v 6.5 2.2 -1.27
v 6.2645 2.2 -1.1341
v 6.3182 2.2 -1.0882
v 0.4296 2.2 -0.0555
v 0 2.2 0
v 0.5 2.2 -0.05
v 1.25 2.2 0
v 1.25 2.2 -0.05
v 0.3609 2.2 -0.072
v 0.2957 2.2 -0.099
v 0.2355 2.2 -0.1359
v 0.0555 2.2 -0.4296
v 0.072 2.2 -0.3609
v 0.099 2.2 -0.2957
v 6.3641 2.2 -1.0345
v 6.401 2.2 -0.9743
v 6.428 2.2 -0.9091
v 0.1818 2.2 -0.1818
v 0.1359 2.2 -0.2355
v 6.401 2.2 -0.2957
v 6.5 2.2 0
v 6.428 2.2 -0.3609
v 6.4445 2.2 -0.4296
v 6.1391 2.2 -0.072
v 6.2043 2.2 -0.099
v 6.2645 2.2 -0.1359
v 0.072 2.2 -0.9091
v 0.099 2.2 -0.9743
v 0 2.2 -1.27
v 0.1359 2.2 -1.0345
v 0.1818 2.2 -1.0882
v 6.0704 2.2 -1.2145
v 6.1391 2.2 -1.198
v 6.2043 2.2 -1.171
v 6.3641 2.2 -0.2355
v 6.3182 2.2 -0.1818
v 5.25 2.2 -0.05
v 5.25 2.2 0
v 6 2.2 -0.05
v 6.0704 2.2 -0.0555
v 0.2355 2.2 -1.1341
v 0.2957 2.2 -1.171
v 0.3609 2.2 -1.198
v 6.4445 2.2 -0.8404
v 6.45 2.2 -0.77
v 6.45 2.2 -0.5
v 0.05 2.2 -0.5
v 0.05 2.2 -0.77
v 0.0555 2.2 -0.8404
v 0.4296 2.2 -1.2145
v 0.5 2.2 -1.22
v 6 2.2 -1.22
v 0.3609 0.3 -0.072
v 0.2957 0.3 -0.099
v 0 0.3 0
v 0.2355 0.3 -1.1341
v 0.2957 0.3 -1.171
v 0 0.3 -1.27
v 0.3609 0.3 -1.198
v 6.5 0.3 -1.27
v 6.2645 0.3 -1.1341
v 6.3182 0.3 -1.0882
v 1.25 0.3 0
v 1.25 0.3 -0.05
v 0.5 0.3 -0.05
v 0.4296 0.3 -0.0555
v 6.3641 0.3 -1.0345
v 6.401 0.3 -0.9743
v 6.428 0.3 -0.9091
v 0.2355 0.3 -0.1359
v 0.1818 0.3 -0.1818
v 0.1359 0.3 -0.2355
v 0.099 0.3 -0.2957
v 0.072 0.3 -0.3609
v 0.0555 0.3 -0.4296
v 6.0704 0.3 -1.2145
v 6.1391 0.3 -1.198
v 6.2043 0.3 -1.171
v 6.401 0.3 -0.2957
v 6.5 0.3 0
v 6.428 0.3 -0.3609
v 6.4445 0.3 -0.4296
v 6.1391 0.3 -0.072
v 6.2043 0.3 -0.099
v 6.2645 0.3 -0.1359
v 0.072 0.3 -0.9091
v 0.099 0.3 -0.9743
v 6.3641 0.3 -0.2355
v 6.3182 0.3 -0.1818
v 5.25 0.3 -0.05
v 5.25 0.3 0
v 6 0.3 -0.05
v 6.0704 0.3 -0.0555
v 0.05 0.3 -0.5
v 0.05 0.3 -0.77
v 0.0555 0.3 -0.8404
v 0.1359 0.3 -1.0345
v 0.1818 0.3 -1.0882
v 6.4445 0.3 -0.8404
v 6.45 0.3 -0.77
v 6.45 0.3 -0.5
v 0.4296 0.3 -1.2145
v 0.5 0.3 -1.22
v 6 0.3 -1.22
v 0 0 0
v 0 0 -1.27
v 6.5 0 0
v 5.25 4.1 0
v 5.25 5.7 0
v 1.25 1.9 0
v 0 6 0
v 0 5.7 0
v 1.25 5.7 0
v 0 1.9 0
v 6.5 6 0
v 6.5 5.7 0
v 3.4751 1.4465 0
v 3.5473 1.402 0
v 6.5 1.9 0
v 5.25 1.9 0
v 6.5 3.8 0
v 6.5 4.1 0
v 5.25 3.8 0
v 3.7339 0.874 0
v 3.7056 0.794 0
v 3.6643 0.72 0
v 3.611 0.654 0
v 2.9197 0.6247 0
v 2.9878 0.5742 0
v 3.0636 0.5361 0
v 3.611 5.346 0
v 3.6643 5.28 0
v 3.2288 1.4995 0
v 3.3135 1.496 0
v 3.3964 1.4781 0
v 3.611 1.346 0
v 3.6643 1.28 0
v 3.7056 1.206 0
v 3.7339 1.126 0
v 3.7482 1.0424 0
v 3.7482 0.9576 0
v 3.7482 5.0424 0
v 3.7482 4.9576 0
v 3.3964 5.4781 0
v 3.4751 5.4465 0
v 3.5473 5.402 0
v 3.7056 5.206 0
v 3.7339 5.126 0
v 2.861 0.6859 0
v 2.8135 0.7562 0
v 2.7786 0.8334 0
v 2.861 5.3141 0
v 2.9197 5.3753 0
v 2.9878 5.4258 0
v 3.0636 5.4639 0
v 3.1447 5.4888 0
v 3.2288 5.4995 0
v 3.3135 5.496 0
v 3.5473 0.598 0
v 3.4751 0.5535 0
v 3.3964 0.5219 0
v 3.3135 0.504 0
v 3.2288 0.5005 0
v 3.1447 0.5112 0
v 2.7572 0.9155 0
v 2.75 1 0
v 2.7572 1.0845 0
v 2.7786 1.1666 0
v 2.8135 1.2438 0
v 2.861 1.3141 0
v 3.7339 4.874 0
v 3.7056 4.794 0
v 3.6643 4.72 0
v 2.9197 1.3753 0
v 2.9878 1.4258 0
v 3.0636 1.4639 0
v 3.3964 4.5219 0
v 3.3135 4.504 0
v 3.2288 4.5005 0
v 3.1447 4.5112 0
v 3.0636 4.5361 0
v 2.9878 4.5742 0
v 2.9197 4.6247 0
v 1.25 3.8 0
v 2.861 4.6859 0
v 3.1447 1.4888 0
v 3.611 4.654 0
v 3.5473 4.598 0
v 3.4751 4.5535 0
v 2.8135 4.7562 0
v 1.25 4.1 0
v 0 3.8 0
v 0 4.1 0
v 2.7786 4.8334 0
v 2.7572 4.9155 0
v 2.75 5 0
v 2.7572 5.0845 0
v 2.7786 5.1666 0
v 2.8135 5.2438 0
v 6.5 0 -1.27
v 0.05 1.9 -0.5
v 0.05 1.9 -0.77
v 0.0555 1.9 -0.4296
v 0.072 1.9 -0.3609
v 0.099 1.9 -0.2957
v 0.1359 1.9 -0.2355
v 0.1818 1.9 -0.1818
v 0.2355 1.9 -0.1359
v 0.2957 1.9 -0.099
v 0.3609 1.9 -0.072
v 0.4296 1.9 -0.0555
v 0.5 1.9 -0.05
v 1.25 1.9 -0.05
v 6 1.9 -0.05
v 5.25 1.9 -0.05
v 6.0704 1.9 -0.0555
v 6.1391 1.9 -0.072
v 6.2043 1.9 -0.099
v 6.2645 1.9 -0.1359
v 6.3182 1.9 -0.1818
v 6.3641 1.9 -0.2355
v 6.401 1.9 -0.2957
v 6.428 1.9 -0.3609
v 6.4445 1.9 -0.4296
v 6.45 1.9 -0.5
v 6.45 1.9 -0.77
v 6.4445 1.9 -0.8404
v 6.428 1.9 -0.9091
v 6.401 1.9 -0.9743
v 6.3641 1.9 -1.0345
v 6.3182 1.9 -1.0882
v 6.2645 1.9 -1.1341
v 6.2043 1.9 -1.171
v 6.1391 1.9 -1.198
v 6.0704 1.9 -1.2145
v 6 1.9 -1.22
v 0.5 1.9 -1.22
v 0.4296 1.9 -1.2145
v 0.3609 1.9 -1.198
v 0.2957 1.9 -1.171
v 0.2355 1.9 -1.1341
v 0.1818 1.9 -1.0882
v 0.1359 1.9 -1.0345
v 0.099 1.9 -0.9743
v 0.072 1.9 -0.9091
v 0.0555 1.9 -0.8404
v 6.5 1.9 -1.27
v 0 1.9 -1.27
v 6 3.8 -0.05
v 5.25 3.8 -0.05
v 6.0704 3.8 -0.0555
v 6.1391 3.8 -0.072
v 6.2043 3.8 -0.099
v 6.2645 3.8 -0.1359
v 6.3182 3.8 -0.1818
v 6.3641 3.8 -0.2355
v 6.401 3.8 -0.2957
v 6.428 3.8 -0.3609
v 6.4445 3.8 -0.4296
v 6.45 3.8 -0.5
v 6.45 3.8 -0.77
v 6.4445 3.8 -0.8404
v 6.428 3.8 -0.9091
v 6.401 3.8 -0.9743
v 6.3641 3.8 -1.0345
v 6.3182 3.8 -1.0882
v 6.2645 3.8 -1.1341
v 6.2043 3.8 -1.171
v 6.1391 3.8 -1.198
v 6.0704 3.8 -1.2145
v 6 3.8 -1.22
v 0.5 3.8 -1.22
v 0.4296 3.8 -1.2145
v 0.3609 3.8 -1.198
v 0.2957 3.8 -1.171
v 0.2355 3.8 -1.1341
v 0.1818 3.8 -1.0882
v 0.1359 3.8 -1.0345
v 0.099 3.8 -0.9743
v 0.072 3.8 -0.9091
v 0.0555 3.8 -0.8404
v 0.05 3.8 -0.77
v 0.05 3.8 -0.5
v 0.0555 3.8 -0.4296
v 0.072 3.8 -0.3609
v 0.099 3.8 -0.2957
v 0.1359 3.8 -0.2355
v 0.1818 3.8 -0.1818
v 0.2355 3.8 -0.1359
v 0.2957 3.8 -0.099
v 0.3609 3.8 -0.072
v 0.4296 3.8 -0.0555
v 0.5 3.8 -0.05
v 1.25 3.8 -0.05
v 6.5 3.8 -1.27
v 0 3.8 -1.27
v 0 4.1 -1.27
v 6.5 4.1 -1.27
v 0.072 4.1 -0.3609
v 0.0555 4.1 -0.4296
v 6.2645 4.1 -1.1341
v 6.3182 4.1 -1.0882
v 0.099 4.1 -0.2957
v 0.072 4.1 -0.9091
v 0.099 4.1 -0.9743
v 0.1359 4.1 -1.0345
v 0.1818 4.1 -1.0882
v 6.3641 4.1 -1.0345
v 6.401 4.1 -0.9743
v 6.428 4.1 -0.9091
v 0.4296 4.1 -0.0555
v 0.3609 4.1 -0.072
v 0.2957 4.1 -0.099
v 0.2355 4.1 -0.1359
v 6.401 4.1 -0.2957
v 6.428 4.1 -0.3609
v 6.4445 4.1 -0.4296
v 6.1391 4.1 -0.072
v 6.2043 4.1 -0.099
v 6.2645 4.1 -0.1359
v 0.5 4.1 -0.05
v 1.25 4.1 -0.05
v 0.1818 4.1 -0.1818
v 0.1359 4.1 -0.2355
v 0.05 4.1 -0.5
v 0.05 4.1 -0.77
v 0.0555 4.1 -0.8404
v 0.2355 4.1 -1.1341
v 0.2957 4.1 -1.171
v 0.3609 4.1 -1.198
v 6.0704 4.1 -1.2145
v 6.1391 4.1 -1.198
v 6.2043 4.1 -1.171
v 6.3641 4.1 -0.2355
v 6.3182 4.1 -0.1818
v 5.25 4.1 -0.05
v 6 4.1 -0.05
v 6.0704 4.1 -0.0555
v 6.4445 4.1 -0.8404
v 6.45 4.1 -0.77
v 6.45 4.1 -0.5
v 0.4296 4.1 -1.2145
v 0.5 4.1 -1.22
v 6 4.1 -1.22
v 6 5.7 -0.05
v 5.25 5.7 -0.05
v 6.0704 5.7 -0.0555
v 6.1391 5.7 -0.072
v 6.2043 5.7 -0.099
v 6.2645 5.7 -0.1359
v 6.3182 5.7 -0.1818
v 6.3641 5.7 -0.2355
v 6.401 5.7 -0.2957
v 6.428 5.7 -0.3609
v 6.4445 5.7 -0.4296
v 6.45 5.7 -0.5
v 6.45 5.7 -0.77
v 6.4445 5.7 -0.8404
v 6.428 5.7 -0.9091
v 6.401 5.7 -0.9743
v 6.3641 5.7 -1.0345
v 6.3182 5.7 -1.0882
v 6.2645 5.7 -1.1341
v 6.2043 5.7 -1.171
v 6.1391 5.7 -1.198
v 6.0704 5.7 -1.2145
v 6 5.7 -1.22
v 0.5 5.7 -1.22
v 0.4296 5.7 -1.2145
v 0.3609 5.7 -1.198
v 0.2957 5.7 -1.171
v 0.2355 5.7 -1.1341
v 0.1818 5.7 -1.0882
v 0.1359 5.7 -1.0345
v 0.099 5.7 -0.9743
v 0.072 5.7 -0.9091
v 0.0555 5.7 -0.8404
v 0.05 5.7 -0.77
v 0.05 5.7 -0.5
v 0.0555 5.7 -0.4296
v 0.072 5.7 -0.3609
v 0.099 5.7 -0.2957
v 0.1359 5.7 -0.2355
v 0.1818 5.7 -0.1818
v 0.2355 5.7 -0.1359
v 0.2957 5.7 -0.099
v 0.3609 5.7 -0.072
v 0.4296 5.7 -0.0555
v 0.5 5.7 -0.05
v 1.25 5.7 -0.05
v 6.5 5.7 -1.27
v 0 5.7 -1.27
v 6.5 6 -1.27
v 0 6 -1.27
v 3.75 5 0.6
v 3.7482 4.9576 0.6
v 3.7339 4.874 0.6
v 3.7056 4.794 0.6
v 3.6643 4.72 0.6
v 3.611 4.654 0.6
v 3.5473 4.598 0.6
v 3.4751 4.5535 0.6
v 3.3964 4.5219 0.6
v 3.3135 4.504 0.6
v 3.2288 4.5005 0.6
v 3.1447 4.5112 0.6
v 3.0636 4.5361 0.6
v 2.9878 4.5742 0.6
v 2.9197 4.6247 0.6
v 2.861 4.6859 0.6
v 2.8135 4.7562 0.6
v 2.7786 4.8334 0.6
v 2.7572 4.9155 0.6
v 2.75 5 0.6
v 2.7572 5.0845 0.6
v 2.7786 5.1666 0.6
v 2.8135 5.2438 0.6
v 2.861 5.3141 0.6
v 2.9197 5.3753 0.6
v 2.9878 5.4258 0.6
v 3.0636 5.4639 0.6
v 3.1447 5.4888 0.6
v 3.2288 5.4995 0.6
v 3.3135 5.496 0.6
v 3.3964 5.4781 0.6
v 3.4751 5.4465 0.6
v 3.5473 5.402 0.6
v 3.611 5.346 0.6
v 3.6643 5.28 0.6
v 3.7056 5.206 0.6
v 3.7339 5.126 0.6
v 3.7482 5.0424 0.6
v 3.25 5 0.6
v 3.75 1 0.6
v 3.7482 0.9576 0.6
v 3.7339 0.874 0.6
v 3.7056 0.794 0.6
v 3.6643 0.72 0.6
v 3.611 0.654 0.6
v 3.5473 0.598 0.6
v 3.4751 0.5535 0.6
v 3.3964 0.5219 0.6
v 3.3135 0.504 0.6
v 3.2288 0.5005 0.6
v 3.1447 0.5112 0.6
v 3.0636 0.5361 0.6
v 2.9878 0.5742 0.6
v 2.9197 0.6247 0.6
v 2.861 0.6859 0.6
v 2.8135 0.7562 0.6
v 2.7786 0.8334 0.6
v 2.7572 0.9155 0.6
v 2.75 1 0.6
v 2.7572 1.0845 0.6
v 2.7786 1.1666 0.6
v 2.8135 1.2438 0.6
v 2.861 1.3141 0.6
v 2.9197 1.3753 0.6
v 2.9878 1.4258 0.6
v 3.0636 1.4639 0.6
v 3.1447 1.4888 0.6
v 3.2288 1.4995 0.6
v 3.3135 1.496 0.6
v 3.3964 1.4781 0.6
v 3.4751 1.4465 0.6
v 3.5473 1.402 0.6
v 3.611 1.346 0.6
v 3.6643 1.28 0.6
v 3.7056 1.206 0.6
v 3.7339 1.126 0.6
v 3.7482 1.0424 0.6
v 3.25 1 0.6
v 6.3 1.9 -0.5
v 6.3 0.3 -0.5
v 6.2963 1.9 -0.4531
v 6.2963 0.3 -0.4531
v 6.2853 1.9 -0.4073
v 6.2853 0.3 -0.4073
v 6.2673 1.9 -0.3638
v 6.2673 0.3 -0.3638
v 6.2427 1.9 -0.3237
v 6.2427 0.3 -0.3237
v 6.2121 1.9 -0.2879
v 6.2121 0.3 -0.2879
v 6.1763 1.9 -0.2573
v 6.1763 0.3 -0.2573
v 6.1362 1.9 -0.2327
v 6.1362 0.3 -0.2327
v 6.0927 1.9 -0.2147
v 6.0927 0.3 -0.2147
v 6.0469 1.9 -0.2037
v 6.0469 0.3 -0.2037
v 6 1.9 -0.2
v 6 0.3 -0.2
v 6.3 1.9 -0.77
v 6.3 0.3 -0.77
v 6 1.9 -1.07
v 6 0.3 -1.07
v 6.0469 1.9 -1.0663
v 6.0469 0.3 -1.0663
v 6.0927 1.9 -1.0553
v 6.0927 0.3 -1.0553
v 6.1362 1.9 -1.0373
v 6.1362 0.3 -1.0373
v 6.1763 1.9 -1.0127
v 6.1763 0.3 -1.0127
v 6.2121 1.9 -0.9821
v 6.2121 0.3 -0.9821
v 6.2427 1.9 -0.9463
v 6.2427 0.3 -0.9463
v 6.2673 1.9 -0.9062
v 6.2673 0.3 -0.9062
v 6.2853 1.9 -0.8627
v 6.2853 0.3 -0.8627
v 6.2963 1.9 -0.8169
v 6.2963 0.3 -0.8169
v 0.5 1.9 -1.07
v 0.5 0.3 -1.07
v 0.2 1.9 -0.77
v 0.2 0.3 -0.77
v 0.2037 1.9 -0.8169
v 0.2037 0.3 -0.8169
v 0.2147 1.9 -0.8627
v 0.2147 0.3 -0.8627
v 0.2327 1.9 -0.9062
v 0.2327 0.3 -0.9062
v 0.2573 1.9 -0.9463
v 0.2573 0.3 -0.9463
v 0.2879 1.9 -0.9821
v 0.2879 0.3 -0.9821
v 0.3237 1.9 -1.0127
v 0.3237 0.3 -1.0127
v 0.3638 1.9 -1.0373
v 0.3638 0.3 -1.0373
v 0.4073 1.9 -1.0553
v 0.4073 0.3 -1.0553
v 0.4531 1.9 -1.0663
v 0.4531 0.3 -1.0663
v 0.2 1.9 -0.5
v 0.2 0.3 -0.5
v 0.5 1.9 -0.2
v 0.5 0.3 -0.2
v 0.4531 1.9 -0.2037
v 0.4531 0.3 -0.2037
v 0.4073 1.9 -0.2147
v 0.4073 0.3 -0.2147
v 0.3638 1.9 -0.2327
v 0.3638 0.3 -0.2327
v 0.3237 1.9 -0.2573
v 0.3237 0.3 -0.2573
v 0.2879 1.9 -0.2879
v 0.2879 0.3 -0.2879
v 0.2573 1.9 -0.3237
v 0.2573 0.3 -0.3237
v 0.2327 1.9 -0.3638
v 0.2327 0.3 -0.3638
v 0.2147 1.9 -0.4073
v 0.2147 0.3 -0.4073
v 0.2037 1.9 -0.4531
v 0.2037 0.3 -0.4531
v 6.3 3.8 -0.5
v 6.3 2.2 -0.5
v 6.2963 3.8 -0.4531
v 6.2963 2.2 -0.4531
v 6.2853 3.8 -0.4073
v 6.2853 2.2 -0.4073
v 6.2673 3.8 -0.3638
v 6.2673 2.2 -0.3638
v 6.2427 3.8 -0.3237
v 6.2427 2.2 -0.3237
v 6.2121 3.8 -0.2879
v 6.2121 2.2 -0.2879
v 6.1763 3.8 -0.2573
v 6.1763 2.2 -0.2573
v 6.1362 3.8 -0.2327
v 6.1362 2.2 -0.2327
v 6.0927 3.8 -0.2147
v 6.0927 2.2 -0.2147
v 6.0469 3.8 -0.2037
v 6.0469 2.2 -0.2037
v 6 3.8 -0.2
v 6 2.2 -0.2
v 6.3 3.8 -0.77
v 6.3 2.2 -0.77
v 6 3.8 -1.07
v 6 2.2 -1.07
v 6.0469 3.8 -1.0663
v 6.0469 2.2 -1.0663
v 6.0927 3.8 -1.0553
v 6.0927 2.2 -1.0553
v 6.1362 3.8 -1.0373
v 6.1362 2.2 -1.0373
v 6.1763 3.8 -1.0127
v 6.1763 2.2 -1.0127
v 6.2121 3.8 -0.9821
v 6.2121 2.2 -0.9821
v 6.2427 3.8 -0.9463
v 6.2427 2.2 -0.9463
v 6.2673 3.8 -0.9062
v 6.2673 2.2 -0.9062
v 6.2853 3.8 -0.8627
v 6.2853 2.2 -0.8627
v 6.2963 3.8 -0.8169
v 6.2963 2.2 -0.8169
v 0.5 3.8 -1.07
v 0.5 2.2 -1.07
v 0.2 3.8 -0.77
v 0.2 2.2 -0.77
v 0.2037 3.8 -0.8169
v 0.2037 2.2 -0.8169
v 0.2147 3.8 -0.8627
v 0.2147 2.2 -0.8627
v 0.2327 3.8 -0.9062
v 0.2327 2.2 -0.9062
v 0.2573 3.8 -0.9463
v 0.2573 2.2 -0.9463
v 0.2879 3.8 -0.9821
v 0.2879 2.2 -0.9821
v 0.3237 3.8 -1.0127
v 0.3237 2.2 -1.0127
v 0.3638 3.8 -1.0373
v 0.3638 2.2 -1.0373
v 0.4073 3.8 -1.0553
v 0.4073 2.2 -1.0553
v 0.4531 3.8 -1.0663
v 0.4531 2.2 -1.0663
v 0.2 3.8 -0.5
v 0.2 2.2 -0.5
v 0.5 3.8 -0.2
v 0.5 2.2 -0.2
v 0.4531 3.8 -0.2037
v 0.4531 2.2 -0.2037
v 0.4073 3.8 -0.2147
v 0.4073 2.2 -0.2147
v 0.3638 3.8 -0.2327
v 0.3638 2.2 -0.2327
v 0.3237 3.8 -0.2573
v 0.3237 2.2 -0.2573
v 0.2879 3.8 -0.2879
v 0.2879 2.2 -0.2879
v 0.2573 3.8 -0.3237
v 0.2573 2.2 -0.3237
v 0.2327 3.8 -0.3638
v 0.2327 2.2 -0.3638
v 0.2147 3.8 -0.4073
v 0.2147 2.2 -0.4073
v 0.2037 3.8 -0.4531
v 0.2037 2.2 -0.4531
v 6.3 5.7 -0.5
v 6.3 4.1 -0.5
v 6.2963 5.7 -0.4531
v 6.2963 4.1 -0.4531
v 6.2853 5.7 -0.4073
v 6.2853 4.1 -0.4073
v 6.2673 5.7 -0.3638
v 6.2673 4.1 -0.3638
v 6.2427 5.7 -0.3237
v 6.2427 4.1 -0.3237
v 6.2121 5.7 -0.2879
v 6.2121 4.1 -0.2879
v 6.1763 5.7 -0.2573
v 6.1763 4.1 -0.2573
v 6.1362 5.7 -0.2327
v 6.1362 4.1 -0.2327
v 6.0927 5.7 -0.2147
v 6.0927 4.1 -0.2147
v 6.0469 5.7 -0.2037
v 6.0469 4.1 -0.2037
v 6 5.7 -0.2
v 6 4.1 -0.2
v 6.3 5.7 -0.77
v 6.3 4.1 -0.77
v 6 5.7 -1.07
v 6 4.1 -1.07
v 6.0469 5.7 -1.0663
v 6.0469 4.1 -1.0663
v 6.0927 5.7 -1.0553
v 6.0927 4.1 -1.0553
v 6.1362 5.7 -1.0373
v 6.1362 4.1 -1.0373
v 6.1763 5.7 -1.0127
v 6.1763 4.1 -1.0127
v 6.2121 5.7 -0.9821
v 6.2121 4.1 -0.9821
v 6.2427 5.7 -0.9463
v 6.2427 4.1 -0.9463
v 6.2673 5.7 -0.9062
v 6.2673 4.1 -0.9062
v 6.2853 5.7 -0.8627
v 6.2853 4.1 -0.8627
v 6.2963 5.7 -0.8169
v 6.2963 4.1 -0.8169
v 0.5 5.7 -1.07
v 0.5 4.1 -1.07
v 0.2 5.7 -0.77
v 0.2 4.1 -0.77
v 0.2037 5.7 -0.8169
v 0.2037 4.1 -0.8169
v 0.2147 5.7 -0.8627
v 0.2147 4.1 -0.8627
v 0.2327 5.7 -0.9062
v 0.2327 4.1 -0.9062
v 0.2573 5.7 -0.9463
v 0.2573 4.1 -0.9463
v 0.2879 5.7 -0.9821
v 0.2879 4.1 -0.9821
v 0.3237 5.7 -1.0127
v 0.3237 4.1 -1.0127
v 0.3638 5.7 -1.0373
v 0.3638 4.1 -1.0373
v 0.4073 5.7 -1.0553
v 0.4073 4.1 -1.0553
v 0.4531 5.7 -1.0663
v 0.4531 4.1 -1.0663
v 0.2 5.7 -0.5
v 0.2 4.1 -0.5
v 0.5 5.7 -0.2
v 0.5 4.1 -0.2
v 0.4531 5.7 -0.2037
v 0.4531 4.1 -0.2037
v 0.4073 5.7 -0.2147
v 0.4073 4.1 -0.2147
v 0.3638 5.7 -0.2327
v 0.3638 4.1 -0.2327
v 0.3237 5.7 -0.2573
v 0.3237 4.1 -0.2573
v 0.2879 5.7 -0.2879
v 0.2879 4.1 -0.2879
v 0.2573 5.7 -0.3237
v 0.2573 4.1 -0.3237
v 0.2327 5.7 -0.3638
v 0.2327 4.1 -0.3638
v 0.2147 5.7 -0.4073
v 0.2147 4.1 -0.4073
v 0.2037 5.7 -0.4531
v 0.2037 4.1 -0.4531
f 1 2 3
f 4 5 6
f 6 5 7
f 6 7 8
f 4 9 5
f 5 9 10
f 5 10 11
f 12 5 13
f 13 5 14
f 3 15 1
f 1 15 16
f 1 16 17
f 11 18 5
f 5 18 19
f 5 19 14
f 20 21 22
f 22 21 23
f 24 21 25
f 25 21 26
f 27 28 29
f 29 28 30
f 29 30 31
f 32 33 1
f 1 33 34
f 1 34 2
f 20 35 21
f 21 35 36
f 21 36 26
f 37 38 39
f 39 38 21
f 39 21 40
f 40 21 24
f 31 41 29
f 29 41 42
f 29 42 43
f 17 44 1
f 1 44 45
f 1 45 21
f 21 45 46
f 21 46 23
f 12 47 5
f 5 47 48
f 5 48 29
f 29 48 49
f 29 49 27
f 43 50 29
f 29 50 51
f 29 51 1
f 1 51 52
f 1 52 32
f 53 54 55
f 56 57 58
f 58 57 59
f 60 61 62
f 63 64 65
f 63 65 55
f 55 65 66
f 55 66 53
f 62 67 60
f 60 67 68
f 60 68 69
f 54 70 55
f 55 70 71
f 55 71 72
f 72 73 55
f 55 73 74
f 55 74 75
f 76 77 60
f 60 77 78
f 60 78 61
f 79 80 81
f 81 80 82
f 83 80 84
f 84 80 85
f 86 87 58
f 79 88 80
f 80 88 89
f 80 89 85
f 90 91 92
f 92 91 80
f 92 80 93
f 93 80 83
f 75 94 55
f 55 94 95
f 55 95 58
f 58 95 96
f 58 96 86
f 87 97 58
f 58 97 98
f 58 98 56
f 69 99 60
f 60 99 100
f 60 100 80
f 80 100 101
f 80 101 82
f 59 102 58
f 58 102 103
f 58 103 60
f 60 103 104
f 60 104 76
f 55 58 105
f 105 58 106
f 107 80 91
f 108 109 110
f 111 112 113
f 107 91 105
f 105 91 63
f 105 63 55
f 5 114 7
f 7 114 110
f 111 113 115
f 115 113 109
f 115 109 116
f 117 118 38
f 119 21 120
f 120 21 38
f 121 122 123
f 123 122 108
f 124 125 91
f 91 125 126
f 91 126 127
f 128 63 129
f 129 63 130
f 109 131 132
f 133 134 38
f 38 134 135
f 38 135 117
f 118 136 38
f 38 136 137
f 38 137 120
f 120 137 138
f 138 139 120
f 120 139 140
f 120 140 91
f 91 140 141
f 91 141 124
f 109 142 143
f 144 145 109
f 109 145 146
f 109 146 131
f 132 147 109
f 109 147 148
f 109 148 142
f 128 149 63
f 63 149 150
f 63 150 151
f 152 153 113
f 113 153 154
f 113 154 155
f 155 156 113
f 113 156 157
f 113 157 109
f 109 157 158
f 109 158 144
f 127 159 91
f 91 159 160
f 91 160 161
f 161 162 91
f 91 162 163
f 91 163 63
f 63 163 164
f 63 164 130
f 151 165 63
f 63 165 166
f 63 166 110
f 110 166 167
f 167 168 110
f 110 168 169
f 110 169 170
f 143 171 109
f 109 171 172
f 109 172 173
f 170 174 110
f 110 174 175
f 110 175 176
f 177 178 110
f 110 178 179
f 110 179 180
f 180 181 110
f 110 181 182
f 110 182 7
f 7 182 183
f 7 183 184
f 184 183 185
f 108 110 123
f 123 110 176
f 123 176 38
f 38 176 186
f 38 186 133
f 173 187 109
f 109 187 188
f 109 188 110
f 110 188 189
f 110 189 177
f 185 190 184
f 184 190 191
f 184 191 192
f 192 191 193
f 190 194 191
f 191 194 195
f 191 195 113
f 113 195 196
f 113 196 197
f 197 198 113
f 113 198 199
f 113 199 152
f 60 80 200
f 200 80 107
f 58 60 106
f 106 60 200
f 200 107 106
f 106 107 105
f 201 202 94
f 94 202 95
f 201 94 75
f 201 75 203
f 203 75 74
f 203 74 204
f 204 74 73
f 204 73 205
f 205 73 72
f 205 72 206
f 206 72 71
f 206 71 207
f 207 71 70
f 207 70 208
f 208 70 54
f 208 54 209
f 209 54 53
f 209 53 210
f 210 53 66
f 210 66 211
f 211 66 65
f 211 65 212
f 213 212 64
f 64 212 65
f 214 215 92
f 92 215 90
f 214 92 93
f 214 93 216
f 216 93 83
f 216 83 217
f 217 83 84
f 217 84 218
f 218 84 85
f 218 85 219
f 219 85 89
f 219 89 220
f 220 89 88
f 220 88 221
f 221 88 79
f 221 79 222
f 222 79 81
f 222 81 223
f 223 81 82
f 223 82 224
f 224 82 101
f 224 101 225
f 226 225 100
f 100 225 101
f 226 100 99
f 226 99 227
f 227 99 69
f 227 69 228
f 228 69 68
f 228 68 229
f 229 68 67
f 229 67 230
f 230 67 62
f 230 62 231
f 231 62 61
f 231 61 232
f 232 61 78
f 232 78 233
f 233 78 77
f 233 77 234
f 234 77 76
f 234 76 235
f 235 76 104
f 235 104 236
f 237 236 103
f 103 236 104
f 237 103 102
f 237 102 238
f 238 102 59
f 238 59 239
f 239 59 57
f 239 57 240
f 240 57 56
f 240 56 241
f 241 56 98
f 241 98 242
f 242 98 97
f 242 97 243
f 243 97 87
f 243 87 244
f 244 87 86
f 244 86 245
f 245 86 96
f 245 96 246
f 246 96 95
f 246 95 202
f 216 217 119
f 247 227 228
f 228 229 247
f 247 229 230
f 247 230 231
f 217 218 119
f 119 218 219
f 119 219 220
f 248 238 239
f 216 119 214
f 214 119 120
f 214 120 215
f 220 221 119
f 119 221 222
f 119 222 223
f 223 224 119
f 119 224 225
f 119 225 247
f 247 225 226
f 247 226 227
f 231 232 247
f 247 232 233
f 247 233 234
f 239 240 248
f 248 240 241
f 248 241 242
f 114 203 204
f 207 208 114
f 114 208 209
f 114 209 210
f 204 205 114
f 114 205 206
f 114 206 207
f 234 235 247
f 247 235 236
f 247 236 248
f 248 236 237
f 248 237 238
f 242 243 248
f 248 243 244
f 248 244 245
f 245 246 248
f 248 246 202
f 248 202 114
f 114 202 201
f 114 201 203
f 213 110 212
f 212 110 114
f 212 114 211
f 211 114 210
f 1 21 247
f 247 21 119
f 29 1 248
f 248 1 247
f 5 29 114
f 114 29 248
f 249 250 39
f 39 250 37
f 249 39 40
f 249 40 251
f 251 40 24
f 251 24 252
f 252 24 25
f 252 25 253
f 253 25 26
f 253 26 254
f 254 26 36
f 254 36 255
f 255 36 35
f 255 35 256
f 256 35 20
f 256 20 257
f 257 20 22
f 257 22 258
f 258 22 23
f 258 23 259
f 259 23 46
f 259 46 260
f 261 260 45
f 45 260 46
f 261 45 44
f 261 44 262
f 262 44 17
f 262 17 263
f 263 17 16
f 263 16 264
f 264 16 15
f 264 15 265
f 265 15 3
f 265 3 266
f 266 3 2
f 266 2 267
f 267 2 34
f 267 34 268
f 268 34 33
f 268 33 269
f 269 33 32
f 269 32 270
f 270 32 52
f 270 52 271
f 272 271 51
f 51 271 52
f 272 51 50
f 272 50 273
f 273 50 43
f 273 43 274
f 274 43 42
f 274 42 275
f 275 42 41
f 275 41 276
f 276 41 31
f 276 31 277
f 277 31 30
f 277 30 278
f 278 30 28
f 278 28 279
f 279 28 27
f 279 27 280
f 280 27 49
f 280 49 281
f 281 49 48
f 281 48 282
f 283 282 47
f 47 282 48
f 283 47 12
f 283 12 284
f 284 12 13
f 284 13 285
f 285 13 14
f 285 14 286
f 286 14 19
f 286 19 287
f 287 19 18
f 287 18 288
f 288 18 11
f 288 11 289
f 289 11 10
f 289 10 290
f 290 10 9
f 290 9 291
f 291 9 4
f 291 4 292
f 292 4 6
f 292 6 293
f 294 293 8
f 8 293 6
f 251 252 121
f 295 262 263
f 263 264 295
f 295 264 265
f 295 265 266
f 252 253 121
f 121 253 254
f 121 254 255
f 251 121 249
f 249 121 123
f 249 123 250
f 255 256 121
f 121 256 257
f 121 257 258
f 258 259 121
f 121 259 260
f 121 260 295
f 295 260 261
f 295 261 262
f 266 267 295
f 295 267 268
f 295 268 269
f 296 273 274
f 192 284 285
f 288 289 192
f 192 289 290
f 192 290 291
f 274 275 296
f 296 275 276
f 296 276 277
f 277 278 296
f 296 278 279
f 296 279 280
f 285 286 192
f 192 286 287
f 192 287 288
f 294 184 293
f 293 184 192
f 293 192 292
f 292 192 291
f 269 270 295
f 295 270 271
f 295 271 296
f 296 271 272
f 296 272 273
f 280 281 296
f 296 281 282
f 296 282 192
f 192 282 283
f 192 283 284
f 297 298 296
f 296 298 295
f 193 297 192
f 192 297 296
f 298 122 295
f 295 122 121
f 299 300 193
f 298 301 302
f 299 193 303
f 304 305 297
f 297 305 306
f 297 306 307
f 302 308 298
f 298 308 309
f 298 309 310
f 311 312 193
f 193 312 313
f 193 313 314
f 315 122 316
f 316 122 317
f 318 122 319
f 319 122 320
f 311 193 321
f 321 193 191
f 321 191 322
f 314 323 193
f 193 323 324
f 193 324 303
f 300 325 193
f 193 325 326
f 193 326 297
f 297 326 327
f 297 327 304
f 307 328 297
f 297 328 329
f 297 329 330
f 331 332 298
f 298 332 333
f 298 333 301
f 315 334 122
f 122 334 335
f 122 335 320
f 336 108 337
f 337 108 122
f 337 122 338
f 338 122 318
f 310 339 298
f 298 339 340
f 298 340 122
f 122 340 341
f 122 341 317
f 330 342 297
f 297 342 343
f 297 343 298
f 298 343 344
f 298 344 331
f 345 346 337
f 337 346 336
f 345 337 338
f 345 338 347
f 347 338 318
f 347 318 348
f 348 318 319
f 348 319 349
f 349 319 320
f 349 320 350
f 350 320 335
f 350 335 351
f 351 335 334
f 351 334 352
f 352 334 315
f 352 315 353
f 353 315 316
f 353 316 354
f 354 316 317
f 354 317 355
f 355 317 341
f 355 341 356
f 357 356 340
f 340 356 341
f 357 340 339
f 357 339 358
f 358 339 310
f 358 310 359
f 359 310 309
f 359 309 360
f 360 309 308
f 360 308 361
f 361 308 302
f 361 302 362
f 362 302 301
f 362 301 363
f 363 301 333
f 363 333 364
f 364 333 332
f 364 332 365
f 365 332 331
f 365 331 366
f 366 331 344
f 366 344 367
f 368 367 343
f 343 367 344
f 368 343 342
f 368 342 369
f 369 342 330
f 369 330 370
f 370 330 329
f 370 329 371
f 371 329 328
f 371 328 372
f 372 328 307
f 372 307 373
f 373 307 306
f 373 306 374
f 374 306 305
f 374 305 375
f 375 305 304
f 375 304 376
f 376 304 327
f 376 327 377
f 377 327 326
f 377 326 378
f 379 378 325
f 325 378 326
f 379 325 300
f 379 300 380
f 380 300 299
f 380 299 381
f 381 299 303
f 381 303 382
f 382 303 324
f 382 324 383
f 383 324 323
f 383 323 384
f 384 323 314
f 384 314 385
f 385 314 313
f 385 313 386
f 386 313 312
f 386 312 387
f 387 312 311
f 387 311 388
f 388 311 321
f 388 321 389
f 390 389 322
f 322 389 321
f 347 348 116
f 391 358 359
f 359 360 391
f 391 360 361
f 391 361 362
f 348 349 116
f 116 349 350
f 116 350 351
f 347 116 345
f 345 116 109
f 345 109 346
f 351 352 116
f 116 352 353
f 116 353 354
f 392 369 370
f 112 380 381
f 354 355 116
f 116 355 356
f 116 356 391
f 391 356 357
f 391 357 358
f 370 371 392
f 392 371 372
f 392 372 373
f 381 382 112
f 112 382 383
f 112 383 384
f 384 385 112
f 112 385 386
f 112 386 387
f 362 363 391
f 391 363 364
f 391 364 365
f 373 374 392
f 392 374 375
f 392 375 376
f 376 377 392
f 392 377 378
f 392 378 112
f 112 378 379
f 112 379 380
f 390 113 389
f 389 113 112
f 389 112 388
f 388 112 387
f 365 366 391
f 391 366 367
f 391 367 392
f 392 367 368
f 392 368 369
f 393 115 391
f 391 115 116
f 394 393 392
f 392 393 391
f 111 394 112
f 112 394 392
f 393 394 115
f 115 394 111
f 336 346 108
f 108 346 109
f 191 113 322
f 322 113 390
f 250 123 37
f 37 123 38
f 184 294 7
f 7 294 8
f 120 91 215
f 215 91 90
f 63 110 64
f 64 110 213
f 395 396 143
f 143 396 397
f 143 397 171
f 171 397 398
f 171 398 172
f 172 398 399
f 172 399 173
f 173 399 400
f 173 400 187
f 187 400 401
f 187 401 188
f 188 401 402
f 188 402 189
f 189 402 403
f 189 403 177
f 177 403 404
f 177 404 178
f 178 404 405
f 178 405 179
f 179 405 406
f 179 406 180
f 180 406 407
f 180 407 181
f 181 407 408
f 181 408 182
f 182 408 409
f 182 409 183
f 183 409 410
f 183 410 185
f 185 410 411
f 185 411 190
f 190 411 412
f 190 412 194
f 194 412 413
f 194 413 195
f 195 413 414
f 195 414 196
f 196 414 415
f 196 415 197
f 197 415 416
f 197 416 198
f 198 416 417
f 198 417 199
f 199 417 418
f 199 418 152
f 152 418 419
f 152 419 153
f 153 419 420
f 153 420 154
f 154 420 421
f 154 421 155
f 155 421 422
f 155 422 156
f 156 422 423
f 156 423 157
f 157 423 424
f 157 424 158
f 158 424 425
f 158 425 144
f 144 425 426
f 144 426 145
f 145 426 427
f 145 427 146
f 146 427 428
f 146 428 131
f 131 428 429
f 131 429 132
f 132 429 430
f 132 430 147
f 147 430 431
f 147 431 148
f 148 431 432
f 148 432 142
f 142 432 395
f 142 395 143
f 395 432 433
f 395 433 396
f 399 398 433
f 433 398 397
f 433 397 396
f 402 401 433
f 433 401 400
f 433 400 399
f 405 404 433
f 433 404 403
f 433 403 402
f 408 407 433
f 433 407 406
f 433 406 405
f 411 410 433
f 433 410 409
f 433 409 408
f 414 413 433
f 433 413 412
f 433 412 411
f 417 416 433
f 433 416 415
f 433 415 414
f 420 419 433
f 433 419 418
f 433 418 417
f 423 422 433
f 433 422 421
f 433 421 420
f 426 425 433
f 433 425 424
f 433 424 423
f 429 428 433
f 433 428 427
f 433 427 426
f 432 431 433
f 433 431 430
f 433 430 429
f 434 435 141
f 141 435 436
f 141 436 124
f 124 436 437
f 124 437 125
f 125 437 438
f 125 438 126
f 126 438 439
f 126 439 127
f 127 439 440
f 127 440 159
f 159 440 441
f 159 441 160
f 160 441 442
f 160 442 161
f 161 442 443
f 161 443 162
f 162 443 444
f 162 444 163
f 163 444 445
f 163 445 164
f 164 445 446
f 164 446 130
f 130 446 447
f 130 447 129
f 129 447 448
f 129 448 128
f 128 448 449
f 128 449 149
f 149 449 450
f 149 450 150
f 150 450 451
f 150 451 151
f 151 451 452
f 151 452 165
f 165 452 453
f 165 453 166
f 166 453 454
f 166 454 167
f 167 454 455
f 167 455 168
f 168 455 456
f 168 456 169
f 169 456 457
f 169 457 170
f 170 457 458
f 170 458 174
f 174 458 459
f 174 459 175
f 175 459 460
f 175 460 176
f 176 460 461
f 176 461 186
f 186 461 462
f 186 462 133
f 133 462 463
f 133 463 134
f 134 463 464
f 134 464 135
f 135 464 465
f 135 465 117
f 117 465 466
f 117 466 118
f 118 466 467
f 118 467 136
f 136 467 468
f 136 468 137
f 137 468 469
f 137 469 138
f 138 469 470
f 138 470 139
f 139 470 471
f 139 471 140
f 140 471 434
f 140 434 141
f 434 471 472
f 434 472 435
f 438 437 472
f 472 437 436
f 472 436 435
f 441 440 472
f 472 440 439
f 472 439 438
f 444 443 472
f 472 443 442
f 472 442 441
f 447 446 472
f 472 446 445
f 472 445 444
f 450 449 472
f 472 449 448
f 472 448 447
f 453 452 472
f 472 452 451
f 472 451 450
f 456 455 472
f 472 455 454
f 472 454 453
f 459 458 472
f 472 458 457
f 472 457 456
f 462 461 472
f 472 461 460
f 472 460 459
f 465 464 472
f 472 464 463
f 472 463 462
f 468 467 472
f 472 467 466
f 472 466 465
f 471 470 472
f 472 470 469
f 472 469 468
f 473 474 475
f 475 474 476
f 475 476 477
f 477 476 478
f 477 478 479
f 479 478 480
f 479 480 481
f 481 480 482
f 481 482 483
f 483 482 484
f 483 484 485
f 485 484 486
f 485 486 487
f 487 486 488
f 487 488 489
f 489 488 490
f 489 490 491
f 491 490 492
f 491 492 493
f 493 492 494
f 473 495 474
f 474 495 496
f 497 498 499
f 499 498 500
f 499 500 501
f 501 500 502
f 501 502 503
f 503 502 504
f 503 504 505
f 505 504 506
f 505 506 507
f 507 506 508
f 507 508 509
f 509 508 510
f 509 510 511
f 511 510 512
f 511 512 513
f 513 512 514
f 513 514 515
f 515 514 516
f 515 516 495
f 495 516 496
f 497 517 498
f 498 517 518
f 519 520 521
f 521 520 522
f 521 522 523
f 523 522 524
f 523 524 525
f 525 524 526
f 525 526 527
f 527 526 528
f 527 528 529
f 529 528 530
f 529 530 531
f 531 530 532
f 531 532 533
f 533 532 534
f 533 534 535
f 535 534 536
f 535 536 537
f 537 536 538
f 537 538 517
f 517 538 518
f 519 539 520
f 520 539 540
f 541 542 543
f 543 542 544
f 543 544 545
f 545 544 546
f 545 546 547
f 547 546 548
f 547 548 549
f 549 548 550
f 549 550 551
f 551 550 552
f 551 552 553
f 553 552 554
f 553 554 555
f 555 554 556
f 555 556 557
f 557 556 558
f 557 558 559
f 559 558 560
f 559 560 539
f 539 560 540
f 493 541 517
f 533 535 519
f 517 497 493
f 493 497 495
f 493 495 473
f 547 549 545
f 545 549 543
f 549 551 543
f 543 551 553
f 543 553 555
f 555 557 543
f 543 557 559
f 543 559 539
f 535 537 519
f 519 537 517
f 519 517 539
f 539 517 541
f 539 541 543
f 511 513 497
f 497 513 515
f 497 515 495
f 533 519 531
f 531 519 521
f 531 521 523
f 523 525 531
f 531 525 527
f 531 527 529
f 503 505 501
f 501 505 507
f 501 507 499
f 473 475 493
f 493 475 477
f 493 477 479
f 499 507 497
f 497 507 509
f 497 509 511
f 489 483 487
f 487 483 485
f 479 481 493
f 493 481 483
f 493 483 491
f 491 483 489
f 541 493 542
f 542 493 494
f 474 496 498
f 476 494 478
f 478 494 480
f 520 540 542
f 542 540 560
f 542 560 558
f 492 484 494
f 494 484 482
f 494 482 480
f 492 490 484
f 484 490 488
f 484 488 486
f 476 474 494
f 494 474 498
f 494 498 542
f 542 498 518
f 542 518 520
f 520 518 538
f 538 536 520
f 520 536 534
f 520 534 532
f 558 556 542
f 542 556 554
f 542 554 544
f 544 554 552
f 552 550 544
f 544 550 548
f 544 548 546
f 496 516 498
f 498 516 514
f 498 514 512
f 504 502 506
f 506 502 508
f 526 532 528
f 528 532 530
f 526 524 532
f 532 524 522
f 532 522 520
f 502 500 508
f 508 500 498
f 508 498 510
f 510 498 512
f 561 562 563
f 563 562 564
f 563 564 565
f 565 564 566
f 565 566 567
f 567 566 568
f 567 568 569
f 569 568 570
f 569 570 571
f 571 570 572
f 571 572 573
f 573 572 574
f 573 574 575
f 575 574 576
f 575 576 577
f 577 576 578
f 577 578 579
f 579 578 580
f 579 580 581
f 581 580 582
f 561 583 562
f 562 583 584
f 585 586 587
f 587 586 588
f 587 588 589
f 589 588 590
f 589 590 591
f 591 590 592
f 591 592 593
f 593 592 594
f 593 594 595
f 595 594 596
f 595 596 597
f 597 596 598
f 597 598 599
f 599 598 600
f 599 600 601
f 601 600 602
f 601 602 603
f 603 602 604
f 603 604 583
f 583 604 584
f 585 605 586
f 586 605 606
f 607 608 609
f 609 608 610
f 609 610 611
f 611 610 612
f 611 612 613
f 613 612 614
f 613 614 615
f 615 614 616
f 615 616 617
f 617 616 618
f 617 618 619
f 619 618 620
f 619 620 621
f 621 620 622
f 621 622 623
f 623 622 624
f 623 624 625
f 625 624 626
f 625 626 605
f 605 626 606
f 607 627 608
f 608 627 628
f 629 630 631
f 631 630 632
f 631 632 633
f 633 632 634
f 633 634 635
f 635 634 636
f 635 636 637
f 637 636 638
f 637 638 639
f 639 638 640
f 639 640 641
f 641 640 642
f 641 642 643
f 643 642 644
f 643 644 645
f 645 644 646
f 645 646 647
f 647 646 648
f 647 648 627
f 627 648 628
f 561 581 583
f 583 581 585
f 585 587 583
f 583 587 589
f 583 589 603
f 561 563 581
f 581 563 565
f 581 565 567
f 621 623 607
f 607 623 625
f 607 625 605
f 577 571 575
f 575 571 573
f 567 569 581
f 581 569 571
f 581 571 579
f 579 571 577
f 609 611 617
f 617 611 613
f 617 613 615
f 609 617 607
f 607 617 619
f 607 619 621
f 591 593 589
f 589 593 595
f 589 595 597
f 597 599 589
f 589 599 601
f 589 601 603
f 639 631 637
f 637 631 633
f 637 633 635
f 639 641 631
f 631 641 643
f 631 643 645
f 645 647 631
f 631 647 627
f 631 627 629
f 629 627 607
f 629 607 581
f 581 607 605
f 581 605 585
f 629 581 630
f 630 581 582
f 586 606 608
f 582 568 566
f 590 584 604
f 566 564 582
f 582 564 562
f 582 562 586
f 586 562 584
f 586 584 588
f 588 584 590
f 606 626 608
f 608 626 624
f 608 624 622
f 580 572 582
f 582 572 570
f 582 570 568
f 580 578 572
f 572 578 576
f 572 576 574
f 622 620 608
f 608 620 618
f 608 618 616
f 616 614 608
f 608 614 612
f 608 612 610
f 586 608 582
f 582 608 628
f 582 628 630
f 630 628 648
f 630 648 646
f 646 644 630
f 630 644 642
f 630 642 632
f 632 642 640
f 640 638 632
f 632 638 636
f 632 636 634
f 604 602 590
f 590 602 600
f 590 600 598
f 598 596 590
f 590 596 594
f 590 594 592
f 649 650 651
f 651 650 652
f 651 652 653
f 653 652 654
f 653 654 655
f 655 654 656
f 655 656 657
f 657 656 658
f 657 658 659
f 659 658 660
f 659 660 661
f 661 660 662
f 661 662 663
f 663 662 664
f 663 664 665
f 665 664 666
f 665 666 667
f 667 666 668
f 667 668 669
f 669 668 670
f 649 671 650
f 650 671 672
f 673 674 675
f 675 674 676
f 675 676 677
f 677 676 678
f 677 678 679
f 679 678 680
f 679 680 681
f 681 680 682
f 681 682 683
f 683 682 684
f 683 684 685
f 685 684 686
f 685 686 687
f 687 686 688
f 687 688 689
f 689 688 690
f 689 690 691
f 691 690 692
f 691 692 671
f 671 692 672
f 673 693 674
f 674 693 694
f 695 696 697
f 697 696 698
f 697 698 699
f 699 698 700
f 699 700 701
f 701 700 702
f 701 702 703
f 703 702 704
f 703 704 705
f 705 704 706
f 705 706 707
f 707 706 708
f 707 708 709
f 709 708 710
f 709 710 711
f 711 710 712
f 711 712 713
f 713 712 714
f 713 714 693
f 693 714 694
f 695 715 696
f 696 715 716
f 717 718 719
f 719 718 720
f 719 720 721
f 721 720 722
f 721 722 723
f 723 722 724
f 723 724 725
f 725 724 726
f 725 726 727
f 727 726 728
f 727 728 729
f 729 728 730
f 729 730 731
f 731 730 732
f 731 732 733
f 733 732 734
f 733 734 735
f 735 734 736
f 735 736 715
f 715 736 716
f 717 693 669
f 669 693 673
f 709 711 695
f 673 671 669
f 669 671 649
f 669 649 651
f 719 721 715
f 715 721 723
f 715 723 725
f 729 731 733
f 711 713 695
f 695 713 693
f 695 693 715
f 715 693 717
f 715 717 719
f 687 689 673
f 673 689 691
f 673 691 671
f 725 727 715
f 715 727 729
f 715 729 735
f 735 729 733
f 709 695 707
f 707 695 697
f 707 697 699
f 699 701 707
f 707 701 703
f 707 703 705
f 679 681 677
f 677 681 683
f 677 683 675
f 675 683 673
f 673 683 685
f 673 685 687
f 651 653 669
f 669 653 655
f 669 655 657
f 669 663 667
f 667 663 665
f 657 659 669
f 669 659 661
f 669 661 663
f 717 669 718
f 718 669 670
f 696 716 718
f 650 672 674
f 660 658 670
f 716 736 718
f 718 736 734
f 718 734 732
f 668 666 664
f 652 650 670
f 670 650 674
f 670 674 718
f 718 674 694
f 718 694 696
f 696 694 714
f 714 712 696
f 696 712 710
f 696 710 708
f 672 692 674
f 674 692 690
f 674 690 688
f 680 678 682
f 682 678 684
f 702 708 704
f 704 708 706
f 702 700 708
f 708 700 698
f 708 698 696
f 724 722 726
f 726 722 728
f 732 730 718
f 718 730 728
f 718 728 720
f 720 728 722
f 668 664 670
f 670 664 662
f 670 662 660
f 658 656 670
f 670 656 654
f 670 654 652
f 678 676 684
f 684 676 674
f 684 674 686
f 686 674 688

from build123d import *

# Parameters (mm, degrees)
SKETCH1_W           = 6.5
SKETCH1_H           = 1.27
BOSS_EXTRUDE1_DEPTH = 0.3
BOSS_EXTRUDE2_DEPTH = 1.6
BOSS_EXTRUDE3_START = 1.9
SKETCH1_2_W         = 6.5
SKETCH1_2_H         = 1.27
BOSS_EXTRUDE3_DEPTH = 0.3
BOSS_EXTRUDE4_START = 1.9
BOSS_EXTRUDE4_DEPTH = 1.6
BOSS_EXTRUDE5_START = 3.8
SKETCH1_3_W         = 6.5
SKETCH1_3_H         = 1.27
BOSS_EXTRUDE5_DEPTH = 0.3
BOSS_EXTRUDE6_START = 3.8
BOSS_EXTRUDE6_DEPTH = 1.6
BOSS_EXTRUDE7_START = 5.7
SKETCH1_4_W         = 6.5
SKETCH1_4_H         = 1.27
BOSS_EXTRUDE7_DEPTH = 0.3
SKETCH3_W           = 4
SKETCH3_H           = 5.4
BOSS_EXTRUDE8_DEPTH = 0.2
SKETCH4_R           = 0.5
BOSS_EXTRUDE9_DEPTH = 0.6


with BuildPart() as part:
    # Sketch1 → Boss-Extrude1 (new body)
    with BuildSketch(Plane(origin=(0, 0, 0), x_dir=(1, 0, 0), z_dir=(0, 1, 0))):
        with Locations((3.25, 0.635)):
            Rectangle(SKETCH1_W, SKETCH1_H)
    extrude(amount=BOSS_EXTRUDE1_DEPTH)

    # Sketch2 → Boss-Extrude2 (add)
    with BuildSketch(Plane(origin=(0, 0.3, 0), x_dir=(1, 0, 0), z_dir=(0, 1, 0))):
        with BuildLine():
            Line((1.25, 0.2), (0.5, 0.2))
            ThreePointArc((0.5, 0.2), (0.287867966, 0.287867966), (0.2, 0.5))
            Line((0.2, 0.5), (0.2, 0.77))
            ThreePointArc((0.2, 0.77), (0.287867966, 0.982132034), (0.5, 1.07))
            Line((0.5, 1.07), (6, 1.07))
            ThreePointArc((6, 1.07), (6.212132034, 0.982132034), (6.3, 0.77))
            Line((6.3, 0.77), (6.3, 0.5))
            ThreePointArc((6.3, 0.5), (6.212132034, 0.287867966), (6, 0.2))
            Line((6, 0.2), (5.25, 0.2))
            Line((5.25, 0.2), (5.25, 0.05))
            Line((5.25, 0.05), (6, 0.05))
            ThreePointArc((6, 0.05), (6.318198052, 0.181801948), (6.45, 0.5))
            Line((6.45, 0.5), (6.45, 0.77))
            ThreePointArc((6.45, 0.77), (6.318198052, 1.088198052), (6, 1.22))
            Line((6, 1.22), (0.5, 1.22))
            ThreePointArc((0.5, 1.22), (0.181801948, 1.088198052), (0.05, 0.77))
            Line((0.05, 0.77), (0.05, 0.5))
            ThreePointArc((0.05, 0.5), (0.181801948, 0.181801948), (0.5, 0.05))
            Line((0.5, 0.05), (1.25, 0.05))
            Line((1.25, 0.05), (1.25, 0.2))
        make_face()
    extrude(amount=BOSS_EXTRUDE2_DEPTH)

    # Sketch1<2> → Boss-Extrude3 (add)
    with BuildSketch(Plane(origin=(0, 0, 0), x_dir=(1, 0, 0), z_dir=(0, 1, 0)).offset(BOSS_EXTRUDE3_START)):
        with Locations((3.25, 0.635)):
            Rectangle(SKETCH1_2_W, SKETCH1_2_H)
    extrude(amount=BOSS_EXTRUDE3_DEPTH)

    # Sketch2<3> → Boss-Extrude4 (add)
    with BuildSketch(Plane(origin=(0, 0.3, 0), x_dir=(1, 0, 0), z_dir=(0, 1, 0)).offset(BOSS_EXTRUDE4_START)):
        with BuildLine():
            Line((1.25, 0.2), (0.5, 0.2))
            ThreePointArc((0.5, 0.2), (0.287867966, 0.287867966), (0.2, 0.5))
            Line((0.2, 0.5), (0.2, 0.77))
            ThreePointArc((0.2, 0.77), (0.287867966, 0.982132034), (0.5, 1.07))
            Line((0.5, 1.07), (6, 1.07))
            ThreePointArc((6, 1.07), (6.212132034, 0.982132034), (6.3, 0.77))
            Line((6.3, 0.77), (6.3, 0.5))
            ThreePointArc((6.3, 0.5), (6.212132034, 0.287867966), (6, 0.2))
            Line((6, 0.2), (5.25, 0.2))
            Line((5.25, 0.2), (5.25, 0.05))
            Line((5.25, 0.05), (6, 0.05))
            ThreePointArc((6, 0.05), (6.318198052, 0.181801948), (6.45, 0.5))
            Line((6.45, 0.5), (6.45, 0.77))
            ThreePointArc((6.45, 0.77), (6.318198052, 1.088198052), (6, 1.22))
            Line((6, 1.22), (0.5, 1.22))
            ThreePointArc((0.5, 1.22), (0.181801948, 1.088198052), (0.05, 0.77))
            Line((0.05, 0.77), (0.05, 0.5))
            ThreePointArc((0.05, 0.5), (0.181801948, 0.181801948), (0.5, 0.05))
            Line((0.5, 0.05), (1.25, 0.05))
            Line((1.25, 0.05), (1.25, 0.2))
        make_face()
    extrude(amount=BOSS_EXTRUDE4_DEPTH)

    # Sketch1<3> → Boss-Extrude5 (add)
    with BuildSketch(Plane(origin=(0, 0, 0), x_dir=(1, 0, 0), z_dir=(0, 1, 0)).offset(BOSS_EXTRUDE5_START)):
        with Locations((3.25, 0.635)):
            Rectangle(SKETCH1_3_W, SKETCH1_3_H)
    extrude(amount=BOSS_EXTRUDE5_DEPTH)

    # Sketch2<4> → Boss-Extrude6 (add)
    with BuildSketch(Plane(origin=(0, 0.3, 0), x_dir=(1, 0, 0), z_dir=(0, 1, 0)).offset(BOSS_EXTRUDE6_START)):
        with BuildLine():
            Line((1.25, 0.2), (0.5, 0.2))
            ThreePointArc((0.5, 0.2), (0.287867966, 0.287867966), (0.2, 0.5))
            Line((0.2, 0.5), (0.2, 0.77))
            ThreePointArc((0.2, 0.77), (0.287867966, 0.982132034), (0.5, 1.07))
            Line((0.5, 1.07), (6, 1.07))
            ThreePointArc((6, 1.07), (6.212132034, 0.982132034), (6.3, 0.77))
            Line((6.3, 0.77), (6.3, 0.5))
            ThreePointArc((6.3, 0.5), (6.212132034, 0.287867966), (6, 0.2))
            Line((6, 0.2), (5.25, 0.2))
            Line((5.25, 0.2), (5.25, 0.05))
            Line((5.25, 0.05), (6, 0.05))
            ThreePointArc((6, 0.05), (6.318198052, 0.181801948), (6.45, 0.5))
            Line((6.45, 0.5), (6.45, 0.77))
            ThreePointArc((6.45, 0.77), (6.318198052, 1.088198052), (6, 1.22))
            Line((6, 1.22), (0.5, 1.22))
            ThreePointArc((0.5, 1.22), (0.181801948, 1.088198052), (0.05, 0.77))
            Line((0.05, 0.77), (0.05, 0.5))
            ThreePointArc((0.05, 0.5), (0.181801948, 0.181801948), (0.5, 0.05))
            Line((0.5, 0.05), (1.25, 0.05))
            Line((1.25, 0.05), (1.25, 0.2))
        make_face()
    extrude(amount=BOSS_EXTRUDE6_DEPTH)

    # Sketch1<4> → Boss-Extrude7 (add)
    with BuildSketch(Plane(origin=(0, 0, 0), x_dir=(1, 0, 0), z_dir=(0, 1, 0)).offset(BOSS_EXTRUDE7_START)):
        with Locations((3.25, 0.635)):
            Rectangle(SKETCH1_4_W, SKETCH1_4_H)
    extrude(amount=BOSS_EXTRUDE7_DEPTH)

    # Sketch3 → Boss-Extrude8 (add)
    with BuildSketch(Plane.XY):
        with Locations((3.25, 3)):
            Rectangle(SKETCH3_W, SKETCH3_H)
    extrude(amount=-BOSS_EXTRUDE8_DEPTH)

    # Sketch4 → Boss-Extrude9 (add)
    with BuildSketch(Plane.XY):
        with Locations(Location((3.25, 5, 0), (0, 0, 180))):
            Circle(SKETCH4_R)
        with Locations(Location((3.25, 1, 0), (0, 0, 180))):
            Circle(SKETCH4_R)
    extrude(amount=BOSS_EXTRUDE9_DEPTH)


solid = part.part
